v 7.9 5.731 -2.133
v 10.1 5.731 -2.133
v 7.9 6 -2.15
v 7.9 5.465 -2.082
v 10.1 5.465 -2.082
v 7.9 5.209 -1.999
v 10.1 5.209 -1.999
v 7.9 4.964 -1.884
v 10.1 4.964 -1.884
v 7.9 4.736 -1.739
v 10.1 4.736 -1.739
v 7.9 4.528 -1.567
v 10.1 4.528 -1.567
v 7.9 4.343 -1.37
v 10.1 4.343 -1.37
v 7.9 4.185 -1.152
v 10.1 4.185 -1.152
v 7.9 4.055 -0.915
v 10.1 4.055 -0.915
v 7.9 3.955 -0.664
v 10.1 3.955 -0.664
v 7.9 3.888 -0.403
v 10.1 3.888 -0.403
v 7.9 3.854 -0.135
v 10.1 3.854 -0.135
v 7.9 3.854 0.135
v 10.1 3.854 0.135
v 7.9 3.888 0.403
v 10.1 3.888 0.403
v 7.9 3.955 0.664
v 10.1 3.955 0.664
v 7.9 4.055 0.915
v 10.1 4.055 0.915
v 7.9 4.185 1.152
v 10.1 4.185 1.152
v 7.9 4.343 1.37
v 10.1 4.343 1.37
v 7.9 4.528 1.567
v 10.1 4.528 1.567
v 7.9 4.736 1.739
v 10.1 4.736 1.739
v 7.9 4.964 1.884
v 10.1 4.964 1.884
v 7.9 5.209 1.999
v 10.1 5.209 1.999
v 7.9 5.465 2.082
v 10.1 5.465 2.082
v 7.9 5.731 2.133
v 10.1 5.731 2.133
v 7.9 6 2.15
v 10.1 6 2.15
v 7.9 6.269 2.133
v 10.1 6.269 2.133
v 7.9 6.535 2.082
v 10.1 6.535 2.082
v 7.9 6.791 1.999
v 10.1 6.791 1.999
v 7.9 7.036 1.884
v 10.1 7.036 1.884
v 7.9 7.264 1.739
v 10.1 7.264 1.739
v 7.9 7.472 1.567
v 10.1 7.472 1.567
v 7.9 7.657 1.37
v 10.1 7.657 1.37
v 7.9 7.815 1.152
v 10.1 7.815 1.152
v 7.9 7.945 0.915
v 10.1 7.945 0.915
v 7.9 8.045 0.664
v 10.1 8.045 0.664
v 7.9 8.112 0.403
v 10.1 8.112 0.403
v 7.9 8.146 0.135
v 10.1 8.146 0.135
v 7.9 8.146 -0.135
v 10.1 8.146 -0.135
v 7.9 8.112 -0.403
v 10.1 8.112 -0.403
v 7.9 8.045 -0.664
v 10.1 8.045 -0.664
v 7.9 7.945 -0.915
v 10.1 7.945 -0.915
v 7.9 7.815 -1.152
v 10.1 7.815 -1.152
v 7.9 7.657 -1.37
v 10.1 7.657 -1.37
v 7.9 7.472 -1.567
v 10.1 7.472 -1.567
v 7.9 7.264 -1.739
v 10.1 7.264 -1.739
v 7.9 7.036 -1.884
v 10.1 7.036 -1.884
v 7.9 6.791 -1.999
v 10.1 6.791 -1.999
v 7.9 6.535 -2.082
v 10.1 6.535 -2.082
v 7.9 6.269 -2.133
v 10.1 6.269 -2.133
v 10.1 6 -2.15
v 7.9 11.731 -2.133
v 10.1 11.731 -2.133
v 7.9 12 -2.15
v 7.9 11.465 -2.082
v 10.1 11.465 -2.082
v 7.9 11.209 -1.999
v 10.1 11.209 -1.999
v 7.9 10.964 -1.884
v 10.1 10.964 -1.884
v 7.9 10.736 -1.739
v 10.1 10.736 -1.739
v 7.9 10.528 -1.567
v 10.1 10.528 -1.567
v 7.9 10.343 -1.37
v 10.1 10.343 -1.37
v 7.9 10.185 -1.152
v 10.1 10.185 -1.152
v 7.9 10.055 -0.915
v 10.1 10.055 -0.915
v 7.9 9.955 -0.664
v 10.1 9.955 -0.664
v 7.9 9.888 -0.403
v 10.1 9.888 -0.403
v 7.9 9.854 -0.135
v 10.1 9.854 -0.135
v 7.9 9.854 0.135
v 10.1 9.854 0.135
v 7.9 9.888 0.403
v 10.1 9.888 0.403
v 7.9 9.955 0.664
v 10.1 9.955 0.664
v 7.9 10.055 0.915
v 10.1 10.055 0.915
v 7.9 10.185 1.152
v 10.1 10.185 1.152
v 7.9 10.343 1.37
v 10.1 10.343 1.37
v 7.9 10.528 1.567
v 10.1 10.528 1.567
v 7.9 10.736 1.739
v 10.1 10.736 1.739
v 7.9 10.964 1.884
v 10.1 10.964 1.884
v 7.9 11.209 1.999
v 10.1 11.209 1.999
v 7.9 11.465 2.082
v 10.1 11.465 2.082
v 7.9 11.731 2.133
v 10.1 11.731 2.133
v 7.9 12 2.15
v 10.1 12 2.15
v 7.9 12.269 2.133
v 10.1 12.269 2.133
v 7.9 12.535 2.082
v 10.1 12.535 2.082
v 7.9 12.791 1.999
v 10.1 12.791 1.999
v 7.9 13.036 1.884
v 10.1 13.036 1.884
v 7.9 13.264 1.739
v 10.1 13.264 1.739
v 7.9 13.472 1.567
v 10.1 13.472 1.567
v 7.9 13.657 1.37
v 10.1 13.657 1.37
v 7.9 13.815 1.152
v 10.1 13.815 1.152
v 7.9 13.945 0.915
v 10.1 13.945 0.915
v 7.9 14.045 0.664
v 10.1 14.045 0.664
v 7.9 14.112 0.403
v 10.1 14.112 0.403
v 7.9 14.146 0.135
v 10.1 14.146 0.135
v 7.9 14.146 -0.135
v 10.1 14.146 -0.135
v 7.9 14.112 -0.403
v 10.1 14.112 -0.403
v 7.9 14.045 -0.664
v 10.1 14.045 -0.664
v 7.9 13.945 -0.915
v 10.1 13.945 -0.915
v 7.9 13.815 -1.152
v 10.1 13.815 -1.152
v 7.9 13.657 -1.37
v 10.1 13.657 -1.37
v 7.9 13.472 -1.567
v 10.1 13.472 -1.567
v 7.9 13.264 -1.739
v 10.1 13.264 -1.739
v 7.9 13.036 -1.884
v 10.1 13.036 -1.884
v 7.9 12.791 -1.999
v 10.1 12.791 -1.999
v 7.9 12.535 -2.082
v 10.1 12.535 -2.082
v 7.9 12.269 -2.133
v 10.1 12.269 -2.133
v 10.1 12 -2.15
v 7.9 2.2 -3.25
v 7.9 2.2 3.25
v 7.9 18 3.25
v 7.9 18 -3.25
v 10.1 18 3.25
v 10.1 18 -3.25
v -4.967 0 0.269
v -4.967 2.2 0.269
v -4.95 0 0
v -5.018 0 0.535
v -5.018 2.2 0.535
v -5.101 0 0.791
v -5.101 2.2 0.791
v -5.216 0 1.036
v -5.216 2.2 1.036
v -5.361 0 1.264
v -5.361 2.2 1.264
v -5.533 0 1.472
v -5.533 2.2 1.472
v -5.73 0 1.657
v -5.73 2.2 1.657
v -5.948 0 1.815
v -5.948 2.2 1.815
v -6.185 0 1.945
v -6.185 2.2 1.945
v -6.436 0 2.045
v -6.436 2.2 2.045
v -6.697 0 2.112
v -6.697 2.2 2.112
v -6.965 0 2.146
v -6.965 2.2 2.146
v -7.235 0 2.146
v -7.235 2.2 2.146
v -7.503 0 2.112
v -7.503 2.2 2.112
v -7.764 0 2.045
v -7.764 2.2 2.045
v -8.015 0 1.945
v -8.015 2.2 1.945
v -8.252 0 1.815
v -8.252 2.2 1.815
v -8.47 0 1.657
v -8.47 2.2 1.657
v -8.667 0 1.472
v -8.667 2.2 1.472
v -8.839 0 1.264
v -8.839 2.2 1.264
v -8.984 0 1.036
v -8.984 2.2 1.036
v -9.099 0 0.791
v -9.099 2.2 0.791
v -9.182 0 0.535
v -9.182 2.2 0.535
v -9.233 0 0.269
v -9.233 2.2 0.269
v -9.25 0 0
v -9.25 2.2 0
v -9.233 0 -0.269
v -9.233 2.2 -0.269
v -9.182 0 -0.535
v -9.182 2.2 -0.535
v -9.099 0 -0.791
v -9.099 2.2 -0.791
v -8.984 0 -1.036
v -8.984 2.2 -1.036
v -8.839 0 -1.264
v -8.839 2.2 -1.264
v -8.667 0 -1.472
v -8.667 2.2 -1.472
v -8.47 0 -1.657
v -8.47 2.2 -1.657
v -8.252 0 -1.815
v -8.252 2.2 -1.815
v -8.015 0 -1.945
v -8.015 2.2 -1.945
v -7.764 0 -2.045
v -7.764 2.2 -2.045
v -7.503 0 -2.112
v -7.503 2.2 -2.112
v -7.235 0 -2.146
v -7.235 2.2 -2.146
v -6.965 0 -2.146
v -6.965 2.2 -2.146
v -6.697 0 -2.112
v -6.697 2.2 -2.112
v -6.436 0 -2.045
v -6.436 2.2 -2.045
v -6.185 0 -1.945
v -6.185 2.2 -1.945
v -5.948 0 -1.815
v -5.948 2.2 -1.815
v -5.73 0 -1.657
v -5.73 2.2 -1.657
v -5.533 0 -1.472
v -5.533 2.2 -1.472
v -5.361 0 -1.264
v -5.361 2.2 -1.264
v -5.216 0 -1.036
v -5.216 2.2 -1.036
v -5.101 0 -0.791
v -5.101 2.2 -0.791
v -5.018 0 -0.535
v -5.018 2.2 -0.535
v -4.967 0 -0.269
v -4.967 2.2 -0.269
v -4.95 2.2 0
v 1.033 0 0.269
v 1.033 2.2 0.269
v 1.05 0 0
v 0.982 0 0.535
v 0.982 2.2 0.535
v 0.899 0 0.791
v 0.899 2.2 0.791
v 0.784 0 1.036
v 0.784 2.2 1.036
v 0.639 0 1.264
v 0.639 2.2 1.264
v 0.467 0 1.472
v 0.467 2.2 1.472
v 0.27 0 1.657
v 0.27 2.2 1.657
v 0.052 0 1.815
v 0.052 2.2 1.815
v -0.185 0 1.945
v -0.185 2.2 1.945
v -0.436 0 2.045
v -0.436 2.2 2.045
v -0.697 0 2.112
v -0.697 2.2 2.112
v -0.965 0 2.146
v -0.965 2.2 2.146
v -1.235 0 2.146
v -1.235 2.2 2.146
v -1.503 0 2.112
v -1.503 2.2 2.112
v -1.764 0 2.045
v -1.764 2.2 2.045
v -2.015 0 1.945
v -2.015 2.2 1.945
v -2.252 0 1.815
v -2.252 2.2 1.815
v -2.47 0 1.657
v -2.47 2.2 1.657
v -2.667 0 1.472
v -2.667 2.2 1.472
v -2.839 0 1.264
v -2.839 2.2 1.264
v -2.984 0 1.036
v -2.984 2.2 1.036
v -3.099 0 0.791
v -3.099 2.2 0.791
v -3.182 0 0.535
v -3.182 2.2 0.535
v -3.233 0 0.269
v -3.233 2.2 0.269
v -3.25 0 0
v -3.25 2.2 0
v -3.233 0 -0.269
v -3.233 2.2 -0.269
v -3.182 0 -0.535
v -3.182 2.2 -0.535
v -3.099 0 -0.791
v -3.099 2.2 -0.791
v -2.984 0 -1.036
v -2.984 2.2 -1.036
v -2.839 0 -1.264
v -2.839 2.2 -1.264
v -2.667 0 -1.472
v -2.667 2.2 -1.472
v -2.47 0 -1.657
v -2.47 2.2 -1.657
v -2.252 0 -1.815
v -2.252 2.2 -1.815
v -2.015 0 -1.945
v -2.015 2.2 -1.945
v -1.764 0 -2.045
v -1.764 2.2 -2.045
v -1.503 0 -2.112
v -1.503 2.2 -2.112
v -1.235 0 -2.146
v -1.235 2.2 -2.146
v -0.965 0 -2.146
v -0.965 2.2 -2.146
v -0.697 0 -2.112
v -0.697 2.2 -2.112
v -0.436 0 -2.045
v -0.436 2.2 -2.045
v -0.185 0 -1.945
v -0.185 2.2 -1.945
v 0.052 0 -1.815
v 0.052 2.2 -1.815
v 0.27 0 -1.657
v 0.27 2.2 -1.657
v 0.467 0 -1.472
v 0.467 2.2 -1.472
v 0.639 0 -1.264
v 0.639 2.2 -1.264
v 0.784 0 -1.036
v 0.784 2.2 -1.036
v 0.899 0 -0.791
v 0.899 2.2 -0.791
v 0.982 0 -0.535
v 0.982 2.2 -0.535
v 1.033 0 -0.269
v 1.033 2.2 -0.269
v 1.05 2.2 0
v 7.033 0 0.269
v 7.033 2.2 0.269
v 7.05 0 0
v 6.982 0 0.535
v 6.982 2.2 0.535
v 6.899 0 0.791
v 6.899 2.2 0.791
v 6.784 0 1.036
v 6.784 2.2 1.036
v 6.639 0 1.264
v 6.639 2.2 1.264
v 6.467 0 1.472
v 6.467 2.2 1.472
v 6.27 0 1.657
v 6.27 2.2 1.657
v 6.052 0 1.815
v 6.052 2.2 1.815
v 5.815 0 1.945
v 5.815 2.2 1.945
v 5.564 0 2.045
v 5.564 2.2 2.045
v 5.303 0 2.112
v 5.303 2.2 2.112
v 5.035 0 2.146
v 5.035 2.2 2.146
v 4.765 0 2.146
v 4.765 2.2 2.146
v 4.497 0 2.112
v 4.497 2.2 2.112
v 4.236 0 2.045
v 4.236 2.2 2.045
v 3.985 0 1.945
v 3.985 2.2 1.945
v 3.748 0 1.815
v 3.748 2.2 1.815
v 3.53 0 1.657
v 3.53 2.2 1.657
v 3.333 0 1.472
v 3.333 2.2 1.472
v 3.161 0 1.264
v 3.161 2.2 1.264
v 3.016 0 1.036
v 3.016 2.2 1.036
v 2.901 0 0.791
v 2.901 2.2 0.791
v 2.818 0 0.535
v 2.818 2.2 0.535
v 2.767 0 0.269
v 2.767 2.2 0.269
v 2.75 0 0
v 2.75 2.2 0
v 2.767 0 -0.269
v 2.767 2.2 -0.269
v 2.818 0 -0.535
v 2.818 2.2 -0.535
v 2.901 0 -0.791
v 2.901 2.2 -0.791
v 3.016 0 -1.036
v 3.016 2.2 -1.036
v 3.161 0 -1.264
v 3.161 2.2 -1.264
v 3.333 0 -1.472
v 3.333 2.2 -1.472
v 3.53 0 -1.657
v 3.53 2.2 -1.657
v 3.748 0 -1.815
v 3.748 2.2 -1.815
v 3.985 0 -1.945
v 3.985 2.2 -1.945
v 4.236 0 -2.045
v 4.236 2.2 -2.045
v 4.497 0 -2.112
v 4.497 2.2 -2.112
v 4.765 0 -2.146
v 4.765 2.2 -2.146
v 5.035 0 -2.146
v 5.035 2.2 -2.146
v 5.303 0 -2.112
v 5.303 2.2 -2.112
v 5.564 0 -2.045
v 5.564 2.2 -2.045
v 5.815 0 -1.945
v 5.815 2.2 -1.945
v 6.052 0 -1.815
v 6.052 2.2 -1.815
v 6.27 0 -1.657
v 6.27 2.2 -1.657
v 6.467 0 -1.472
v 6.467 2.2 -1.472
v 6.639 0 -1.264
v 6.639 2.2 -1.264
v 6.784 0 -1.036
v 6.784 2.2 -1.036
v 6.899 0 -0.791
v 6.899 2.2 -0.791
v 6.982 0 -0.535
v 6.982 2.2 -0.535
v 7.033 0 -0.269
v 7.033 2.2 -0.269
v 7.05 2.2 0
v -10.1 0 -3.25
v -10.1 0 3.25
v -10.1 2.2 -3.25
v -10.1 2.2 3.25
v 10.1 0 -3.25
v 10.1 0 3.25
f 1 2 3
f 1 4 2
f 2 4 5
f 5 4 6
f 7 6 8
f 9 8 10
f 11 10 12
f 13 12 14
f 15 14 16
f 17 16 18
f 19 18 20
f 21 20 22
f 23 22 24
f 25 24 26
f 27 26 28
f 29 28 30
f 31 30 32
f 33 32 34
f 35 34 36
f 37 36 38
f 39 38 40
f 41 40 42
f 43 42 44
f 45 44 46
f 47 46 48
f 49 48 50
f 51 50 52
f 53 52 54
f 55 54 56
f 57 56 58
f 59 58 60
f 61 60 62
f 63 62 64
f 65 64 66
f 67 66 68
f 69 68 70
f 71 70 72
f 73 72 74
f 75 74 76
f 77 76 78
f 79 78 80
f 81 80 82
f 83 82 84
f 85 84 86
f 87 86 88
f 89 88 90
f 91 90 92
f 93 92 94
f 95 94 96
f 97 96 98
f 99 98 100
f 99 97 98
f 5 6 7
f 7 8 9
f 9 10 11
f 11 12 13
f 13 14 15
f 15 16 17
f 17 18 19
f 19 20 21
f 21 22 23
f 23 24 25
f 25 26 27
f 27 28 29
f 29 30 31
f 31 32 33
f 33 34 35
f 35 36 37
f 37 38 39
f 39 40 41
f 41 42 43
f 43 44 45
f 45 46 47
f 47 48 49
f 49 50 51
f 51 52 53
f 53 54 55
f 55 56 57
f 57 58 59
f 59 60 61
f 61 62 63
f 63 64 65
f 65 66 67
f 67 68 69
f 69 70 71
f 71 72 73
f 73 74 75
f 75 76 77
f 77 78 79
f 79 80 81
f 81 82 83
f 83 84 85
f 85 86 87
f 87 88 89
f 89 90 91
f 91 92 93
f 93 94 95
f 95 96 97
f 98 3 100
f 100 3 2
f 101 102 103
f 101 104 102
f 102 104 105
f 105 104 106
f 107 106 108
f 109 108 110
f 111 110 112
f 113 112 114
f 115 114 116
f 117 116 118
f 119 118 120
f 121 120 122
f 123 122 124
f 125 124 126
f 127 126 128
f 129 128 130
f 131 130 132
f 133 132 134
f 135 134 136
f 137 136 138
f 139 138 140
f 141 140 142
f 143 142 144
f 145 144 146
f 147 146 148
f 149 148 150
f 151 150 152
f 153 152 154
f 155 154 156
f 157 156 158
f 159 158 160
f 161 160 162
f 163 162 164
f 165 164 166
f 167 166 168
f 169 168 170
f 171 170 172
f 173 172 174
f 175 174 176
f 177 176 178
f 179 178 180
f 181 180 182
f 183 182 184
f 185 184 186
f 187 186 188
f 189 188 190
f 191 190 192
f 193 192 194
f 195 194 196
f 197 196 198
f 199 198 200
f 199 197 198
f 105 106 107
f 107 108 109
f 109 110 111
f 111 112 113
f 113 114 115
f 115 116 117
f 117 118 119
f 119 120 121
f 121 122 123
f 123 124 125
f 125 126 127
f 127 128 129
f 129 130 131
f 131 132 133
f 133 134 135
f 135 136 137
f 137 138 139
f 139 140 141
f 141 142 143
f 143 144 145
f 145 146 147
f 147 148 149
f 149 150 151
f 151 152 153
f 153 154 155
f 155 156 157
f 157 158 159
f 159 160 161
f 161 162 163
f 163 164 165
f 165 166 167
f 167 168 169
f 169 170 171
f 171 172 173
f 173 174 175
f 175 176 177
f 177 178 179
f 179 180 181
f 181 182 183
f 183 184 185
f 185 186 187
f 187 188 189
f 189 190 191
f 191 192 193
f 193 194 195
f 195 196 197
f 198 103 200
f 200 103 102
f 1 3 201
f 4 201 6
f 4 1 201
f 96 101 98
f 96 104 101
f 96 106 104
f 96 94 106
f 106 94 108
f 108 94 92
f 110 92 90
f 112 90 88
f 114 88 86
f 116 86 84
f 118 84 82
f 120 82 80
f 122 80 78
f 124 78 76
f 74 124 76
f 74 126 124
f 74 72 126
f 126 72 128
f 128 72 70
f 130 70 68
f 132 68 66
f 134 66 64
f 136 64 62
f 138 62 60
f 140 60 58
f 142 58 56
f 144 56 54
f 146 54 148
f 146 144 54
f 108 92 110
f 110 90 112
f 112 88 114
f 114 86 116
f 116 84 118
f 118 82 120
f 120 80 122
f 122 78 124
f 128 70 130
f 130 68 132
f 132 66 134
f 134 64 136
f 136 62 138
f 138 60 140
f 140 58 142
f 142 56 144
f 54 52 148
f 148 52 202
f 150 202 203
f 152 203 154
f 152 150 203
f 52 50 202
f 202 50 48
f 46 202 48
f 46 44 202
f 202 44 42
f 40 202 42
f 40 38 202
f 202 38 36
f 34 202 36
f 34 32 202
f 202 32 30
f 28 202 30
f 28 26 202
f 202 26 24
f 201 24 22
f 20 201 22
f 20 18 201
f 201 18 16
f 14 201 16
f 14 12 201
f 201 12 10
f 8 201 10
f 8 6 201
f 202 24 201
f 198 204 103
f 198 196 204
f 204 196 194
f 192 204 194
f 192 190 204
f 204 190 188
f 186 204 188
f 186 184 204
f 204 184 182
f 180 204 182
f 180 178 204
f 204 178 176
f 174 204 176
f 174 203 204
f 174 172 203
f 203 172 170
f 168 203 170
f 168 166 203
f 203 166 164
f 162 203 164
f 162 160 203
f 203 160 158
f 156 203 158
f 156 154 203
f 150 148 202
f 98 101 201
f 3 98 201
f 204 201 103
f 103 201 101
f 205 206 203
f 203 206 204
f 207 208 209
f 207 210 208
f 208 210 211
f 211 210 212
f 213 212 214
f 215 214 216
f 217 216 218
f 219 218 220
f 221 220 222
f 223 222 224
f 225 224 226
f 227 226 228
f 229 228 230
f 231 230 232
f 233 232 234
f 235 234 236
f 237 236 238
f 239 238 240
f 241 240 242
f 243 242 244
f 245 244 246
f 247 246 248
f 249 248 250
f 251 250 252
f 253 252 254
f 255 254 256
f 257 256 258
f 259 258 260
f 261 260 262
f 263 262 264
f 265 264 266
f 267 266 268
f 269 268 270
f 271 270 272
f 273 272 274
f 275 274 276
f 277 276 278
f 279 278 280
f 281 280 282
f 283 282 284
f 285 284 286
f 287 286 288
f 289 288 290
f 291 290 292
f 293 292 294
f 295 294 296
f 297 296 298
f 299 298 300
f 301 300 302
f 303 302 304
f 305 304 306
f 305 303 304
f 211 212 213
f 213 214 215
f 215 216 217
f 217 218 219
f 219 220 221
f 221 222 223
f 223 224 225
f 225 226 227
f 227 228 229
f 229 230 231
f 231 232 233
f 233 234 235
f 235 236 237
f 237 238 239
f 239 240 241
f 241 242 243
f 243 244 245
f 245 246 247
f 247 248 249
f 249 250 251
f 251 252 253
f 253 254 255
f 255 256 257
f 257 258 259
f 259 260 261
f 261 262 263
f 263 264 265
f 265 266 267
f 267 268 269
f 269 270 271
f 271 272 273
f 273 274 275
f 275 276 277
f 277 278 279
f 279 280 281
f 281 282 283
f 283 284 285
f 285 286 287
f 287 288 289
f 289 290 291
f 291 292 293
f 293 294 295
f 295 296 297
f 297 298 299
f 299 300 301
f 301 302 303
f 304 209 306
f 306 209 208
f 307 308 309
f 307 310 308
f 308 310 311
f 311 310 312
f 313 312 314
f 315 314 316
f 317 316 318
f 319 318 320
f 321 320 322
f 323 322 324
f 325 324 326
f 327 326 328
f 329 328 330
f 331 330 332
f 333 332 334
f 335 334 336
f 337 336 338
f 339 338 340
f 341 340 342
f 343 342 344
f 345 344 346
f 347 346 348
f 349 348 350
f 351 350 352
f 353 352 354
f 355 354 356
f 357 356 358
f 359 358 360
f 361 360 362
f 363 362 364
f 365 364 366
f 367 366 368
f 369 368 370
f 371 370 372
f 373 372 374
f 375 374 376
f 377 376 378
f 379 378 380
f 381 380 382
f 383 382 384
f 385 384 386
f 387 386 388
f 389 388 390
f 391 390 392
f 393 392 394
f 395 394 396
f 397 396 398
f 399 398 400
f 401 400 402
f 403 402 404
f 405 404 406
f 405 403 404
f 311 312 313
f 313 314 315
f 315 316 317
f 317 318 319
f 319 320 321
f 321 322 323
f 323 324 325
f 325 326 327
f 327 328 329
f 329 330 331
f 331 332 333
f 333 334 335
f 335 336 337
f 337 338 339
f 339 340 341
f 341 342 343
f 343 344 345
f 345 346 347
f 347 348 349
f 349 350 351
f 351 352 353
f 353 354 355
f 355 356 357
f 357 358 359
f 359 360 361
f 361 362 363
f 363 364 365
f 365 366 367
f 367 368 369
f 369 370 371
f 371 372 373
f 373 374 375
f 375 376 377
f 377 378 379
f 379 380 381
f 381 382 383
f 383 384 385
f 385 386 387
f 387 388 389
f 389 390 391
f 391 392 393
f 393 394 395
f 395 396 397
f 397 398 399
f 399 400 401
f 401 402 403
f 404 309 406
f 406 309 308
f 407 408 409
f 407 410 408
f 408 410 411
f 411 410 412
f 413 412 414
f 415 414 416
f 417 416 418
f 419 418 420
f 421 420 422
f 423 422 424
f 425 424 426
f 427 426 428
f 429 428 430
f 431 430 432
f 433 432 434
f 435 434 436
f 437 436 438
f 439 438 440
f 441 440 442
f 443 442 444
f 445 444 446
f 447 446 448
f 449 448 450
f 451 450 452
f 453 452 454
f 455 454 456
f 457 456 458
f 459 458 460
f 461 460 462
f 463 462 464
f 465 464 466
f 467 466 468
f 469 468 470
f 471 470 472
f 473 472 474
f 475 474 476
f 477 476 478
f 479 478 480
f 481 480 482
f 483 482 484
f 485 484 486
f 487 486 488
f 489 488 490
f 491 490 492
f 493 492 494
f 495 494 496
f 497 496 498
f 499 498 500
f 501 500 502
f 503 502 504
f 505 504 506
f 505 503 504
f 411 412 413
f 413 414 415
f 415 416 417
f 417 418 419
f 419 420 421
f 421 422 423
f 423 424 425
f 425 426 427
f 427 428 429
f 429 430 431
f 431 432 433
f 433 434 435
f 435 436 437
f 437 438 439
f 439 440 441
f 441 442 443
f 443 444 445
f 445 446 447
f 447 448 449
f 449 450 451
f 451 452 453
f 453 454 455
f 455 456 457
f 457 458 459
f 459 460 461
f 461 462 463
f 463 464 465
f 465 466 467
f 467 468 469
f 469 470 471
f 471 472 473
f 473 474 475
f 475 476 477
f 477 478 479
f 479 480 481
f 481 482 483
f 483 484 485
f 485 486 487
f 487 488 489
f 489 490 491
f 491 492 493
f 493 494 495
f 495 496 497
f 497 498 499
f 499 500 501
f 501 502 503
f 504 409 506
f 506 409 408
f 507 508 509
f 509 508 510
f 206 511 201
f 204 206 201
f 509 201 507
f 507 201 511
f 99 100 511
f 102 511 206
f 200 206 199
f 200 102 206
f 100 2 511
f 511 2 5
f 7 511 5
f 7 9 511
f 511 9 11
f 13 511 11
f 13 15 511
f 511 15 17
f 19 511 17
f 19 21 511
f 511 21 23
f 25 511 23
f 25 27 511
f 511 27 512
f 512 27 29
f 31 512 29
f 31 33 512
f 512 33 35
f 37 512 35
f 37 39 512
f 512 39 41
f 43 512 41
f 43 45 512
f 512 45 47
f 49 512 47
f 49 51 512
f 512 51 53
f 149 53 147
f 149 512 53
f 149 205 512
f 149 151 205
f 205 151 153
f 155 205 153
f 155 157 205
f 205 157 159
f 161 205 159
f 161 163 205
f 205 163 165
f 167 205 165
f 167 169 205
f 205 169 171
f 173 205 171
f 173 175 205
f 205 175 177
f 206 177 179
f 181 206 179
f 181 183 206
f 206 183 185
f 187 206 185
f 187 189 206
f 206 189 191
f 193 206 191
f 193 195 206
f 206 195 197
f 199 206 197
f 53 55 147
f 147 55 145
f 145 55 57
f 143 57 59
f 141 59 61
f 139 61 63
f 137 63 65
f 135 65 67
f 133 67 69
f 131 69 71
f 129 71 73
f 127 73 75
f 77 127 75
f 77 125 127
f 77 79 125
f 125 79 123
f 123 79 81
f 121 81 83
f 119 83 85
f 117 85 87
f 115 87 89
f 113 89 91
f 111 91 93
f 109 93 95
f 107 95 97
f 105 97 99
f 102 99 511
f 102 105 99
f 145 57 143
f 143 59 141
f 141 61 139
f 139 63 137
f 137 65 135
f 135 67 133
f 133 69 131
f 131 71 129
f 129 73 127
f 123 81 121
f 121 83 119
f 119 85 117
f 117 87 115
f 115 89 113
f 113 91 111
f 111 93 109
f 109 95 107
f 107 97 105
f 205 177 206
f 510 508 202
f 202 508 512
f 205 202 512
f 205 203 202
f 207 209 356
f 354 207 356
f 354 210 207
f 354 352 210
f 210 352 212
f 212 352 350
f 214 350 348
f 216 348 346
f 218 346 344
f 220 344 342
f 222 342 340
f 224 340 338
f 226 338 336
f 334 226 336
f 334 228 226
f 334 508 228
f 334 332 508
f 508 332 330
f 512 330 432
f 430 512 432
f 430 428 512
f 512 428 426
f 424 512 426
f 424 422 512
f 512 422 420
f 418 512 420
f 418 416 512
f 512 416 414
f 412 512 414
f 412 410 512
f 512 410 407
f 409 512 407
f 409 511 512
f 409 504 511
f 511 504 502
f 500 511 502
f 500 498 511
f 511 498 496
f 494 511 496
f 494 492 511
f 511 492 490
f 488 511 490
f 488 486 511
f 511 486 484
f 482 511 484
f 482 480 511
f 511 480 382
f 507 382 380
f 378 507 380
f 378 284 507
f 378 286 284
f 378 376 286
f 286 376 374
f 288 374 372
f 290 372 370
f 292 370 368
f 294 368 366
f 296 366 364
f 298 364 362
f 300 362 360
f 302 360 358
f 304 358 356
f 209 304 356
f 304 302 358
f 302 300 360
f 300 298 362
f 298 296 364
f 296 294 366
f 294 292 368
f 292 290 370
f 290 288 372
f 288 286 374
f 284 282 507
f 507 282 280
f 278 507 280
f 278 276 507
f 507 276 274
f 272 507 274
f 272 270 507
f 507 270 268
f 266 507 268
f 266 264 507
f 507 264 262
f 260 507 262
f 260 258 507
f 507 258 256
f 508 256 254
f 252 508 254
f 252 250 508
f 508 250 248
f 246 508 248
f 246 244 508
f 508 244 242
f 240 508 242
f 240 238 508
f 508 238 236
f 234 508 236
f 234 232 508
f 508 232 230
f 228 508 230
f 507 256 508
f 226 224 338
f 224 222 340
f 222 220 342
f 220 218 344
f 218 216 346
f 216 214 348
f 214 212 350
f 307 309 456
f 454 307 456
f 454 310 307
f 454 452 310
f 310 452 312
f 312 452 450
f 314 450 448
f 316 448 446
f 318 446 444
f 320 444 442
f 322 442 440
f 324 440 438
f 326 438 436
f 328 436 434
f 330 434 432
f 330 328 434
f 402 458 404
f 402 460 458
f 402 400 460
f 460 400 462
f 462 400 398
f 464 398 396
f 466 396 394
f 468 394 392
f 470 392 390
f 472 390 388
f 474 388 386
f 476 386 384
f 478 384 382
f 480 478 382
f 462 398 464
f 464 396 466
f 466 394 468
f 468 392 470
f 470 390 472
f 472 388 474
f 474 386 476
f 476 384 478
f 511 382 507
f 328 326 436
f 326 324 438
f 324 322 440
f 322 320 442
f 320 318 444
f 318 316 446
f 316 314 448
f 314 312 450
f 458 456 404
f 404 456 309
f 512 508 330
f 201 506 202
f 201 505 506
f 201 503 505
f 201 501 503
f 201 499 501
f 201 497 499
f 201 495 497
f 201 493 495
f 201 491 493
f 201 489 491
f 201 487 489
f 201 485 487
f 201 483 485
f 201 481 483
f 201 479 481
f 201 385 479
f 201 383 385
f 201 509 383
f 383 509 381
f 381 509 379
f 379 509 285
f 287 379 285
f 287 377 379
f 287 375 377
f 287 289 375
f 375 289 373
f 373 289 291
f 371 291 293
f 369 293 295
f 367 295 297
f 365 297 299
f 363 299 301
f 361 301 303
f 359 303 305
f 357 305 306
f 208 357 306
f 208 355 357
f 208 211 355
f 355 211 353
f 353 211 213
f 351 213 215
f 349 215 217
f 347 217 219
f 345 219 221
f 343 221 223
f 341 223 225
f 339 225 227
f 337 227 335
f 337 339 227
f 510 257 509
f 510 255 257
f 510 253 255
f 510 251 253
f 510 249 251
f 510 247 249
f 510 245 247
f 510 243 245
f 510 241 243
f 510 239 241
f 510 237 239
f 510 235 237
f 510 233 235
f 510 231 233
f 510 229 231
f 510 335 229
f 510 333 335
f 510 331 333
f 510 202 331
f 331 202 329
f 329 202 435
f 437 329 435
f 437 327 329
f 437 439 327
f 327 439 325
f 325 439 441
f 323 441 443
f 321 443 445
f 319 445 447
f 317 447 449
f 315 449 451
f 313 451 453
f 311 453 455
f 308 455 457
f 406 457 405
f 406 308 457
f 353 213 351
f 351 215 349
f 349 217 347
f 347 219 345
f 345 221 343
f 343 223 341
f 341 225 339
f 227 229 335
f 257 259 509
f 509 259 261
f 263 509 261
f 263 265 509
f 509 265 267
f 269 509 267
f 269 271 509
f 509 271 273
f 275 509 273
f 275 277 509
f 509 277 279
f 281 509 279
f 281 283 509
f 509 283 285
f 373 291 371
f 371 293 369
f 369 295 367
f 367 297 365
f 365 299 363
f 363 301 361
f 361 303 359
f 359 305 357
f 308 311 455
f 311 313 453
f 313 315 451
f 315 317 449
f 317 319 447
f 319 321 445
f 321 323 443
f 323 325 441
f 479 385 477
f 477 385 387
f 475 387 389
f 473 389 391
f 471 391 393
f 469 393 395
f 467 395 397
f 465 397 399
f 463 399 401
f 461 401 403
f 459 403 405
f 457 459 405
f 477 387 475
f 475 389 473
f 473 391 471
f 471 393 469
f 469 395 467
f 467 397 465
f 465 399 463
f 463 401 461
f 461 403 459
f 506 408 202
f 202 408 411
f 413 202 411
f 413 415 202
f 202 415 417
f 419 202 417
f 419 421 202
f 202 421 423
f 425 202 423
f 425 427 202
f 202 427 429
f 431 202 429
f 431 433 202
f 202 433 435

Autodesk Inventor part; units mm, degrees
ref_plane "YZ Plane" through (0, 0, 0) normal (1, 0, 0) x (0, 1, 0)
ref_plane "XZ Plane" through (0, 0, 0) normal (0, 1, 0) x (-1, 0, 0)
ref_plane "XY Plane" through (0, 0, 0) normal (0, 0, 1) x (1, 0, 0)
sketch "Sketch1" plane through (0, 0, 0) normal (0, 1, 0) x (-1, 0, 0)
  line L0 (-10.1, 3.25) -> (10.1, 3.25)
  line L1 (10.1, 3.25) -> (10.1, -3.25)
  line L2 (10.1, -3.25) -> (-10.1, -3.25)
  line L3 (-10.1, -3.25) -> (-10.1, 3.25)
  line L4 (0, 0) -> (0, -7.2216) construction
  line L5 (0, 0) -> (18.1335, 0) construction
  dimension "d0" = 6.5
  dimension "d1" = 20.2
extrude "Extrusion1" add sketch "Sketch1" along normal blind 2.2
sketch "Sketch2" plane through (0, 2.2, 0) normal (0, 1, 0) x (1, 0, 0)
  line L0 (-10.1, -3.25) -> (10.1, -3.25) projected
  line L1 (10.1, -3.25) -> (10.1, 3.25) projected
  line L2 (10.1, 3.25) -> (-10.1, 3.25) projected
  line L3 (-10.1, 3.25) -> (-10.1, -3.25) projected
  line L4 (7.9, 3.25) -> (7.9, -3.25) construction
  line L5 (-1.1, 6.7296) -> (-1.1, -8.5112) construction
  circle A0 centre (-1.1, 0) radius 2.15
  circle A1 centre (-7.1, 0) radius 2.15
  circle A2 centre (4.9, 0) radius 2.15
  circle A3 centre (-1.1, 0) radius 2.15
  point P0 (0, 0)
  dimension "d4" = 2.2
  dimension "d5" = 4.3
  dimension "d8" = 6
  dimension "d11" = 6
extrude "Extrusion2" cut sketch "Sketch2" against normal through all contours A0 | A1 | A2
sketch "Sketch3" plane through (0, 2.2, 0) normal (0, 1, 0) x (1, 0, 0)
  line L0 (10.1, 3.25) -> (-10.1, 3.25) projected
  line L1 (7.9, 3.25) -> (10.1, 3.25)
  line L2 (10.1, 3.25) -> (10.1, -3.25)
  line L3 (10.1, -3.25) -> (7.9, -3.25)
  line L4 (7.9, -3.25) -> (7.9, 3.25)
  point P0 (0, 0)
  dimension "d19" = 2.2
extrude "Extrusion3" add sketch "Sketch3" along normal blind 15.8
sketch "Sketch4" plane through (10.1, 0, 3.25) normal (1, 0, 0) x (0, 0, -1)
  line L0 (0, 0) -> (0, 18) projected
  line L1 (3.25, 19.7577) -> (3.25, -0.3358) construction
  circle A0 centre (3.25, 6) radius 2.15
  circle A1 centre (3.25, 12) radius 2.15
  point P0 (3.25, 0)
  dimension "d22" = 4.3
  dimension "d23" = 4.3
  dimension "d24" = 6
  dimension "d25" = 6
extrude "Extrusion4" cut sketch "Sketch4" against normal through all
equation "\"d2\" = Depth"
equation "\"d4\" = Depth"
equation "\"d5\" = Holes"
equation "\"d17\" = Depth"
equation "\"d19\" = Depth"
equation "\"d22\" = Holes"
equation "\"d23\" = Holes"
equation "\"Holes\" = 4.3"
equation "\"Depth\" = 2.2"
properties part number "Equerre"
